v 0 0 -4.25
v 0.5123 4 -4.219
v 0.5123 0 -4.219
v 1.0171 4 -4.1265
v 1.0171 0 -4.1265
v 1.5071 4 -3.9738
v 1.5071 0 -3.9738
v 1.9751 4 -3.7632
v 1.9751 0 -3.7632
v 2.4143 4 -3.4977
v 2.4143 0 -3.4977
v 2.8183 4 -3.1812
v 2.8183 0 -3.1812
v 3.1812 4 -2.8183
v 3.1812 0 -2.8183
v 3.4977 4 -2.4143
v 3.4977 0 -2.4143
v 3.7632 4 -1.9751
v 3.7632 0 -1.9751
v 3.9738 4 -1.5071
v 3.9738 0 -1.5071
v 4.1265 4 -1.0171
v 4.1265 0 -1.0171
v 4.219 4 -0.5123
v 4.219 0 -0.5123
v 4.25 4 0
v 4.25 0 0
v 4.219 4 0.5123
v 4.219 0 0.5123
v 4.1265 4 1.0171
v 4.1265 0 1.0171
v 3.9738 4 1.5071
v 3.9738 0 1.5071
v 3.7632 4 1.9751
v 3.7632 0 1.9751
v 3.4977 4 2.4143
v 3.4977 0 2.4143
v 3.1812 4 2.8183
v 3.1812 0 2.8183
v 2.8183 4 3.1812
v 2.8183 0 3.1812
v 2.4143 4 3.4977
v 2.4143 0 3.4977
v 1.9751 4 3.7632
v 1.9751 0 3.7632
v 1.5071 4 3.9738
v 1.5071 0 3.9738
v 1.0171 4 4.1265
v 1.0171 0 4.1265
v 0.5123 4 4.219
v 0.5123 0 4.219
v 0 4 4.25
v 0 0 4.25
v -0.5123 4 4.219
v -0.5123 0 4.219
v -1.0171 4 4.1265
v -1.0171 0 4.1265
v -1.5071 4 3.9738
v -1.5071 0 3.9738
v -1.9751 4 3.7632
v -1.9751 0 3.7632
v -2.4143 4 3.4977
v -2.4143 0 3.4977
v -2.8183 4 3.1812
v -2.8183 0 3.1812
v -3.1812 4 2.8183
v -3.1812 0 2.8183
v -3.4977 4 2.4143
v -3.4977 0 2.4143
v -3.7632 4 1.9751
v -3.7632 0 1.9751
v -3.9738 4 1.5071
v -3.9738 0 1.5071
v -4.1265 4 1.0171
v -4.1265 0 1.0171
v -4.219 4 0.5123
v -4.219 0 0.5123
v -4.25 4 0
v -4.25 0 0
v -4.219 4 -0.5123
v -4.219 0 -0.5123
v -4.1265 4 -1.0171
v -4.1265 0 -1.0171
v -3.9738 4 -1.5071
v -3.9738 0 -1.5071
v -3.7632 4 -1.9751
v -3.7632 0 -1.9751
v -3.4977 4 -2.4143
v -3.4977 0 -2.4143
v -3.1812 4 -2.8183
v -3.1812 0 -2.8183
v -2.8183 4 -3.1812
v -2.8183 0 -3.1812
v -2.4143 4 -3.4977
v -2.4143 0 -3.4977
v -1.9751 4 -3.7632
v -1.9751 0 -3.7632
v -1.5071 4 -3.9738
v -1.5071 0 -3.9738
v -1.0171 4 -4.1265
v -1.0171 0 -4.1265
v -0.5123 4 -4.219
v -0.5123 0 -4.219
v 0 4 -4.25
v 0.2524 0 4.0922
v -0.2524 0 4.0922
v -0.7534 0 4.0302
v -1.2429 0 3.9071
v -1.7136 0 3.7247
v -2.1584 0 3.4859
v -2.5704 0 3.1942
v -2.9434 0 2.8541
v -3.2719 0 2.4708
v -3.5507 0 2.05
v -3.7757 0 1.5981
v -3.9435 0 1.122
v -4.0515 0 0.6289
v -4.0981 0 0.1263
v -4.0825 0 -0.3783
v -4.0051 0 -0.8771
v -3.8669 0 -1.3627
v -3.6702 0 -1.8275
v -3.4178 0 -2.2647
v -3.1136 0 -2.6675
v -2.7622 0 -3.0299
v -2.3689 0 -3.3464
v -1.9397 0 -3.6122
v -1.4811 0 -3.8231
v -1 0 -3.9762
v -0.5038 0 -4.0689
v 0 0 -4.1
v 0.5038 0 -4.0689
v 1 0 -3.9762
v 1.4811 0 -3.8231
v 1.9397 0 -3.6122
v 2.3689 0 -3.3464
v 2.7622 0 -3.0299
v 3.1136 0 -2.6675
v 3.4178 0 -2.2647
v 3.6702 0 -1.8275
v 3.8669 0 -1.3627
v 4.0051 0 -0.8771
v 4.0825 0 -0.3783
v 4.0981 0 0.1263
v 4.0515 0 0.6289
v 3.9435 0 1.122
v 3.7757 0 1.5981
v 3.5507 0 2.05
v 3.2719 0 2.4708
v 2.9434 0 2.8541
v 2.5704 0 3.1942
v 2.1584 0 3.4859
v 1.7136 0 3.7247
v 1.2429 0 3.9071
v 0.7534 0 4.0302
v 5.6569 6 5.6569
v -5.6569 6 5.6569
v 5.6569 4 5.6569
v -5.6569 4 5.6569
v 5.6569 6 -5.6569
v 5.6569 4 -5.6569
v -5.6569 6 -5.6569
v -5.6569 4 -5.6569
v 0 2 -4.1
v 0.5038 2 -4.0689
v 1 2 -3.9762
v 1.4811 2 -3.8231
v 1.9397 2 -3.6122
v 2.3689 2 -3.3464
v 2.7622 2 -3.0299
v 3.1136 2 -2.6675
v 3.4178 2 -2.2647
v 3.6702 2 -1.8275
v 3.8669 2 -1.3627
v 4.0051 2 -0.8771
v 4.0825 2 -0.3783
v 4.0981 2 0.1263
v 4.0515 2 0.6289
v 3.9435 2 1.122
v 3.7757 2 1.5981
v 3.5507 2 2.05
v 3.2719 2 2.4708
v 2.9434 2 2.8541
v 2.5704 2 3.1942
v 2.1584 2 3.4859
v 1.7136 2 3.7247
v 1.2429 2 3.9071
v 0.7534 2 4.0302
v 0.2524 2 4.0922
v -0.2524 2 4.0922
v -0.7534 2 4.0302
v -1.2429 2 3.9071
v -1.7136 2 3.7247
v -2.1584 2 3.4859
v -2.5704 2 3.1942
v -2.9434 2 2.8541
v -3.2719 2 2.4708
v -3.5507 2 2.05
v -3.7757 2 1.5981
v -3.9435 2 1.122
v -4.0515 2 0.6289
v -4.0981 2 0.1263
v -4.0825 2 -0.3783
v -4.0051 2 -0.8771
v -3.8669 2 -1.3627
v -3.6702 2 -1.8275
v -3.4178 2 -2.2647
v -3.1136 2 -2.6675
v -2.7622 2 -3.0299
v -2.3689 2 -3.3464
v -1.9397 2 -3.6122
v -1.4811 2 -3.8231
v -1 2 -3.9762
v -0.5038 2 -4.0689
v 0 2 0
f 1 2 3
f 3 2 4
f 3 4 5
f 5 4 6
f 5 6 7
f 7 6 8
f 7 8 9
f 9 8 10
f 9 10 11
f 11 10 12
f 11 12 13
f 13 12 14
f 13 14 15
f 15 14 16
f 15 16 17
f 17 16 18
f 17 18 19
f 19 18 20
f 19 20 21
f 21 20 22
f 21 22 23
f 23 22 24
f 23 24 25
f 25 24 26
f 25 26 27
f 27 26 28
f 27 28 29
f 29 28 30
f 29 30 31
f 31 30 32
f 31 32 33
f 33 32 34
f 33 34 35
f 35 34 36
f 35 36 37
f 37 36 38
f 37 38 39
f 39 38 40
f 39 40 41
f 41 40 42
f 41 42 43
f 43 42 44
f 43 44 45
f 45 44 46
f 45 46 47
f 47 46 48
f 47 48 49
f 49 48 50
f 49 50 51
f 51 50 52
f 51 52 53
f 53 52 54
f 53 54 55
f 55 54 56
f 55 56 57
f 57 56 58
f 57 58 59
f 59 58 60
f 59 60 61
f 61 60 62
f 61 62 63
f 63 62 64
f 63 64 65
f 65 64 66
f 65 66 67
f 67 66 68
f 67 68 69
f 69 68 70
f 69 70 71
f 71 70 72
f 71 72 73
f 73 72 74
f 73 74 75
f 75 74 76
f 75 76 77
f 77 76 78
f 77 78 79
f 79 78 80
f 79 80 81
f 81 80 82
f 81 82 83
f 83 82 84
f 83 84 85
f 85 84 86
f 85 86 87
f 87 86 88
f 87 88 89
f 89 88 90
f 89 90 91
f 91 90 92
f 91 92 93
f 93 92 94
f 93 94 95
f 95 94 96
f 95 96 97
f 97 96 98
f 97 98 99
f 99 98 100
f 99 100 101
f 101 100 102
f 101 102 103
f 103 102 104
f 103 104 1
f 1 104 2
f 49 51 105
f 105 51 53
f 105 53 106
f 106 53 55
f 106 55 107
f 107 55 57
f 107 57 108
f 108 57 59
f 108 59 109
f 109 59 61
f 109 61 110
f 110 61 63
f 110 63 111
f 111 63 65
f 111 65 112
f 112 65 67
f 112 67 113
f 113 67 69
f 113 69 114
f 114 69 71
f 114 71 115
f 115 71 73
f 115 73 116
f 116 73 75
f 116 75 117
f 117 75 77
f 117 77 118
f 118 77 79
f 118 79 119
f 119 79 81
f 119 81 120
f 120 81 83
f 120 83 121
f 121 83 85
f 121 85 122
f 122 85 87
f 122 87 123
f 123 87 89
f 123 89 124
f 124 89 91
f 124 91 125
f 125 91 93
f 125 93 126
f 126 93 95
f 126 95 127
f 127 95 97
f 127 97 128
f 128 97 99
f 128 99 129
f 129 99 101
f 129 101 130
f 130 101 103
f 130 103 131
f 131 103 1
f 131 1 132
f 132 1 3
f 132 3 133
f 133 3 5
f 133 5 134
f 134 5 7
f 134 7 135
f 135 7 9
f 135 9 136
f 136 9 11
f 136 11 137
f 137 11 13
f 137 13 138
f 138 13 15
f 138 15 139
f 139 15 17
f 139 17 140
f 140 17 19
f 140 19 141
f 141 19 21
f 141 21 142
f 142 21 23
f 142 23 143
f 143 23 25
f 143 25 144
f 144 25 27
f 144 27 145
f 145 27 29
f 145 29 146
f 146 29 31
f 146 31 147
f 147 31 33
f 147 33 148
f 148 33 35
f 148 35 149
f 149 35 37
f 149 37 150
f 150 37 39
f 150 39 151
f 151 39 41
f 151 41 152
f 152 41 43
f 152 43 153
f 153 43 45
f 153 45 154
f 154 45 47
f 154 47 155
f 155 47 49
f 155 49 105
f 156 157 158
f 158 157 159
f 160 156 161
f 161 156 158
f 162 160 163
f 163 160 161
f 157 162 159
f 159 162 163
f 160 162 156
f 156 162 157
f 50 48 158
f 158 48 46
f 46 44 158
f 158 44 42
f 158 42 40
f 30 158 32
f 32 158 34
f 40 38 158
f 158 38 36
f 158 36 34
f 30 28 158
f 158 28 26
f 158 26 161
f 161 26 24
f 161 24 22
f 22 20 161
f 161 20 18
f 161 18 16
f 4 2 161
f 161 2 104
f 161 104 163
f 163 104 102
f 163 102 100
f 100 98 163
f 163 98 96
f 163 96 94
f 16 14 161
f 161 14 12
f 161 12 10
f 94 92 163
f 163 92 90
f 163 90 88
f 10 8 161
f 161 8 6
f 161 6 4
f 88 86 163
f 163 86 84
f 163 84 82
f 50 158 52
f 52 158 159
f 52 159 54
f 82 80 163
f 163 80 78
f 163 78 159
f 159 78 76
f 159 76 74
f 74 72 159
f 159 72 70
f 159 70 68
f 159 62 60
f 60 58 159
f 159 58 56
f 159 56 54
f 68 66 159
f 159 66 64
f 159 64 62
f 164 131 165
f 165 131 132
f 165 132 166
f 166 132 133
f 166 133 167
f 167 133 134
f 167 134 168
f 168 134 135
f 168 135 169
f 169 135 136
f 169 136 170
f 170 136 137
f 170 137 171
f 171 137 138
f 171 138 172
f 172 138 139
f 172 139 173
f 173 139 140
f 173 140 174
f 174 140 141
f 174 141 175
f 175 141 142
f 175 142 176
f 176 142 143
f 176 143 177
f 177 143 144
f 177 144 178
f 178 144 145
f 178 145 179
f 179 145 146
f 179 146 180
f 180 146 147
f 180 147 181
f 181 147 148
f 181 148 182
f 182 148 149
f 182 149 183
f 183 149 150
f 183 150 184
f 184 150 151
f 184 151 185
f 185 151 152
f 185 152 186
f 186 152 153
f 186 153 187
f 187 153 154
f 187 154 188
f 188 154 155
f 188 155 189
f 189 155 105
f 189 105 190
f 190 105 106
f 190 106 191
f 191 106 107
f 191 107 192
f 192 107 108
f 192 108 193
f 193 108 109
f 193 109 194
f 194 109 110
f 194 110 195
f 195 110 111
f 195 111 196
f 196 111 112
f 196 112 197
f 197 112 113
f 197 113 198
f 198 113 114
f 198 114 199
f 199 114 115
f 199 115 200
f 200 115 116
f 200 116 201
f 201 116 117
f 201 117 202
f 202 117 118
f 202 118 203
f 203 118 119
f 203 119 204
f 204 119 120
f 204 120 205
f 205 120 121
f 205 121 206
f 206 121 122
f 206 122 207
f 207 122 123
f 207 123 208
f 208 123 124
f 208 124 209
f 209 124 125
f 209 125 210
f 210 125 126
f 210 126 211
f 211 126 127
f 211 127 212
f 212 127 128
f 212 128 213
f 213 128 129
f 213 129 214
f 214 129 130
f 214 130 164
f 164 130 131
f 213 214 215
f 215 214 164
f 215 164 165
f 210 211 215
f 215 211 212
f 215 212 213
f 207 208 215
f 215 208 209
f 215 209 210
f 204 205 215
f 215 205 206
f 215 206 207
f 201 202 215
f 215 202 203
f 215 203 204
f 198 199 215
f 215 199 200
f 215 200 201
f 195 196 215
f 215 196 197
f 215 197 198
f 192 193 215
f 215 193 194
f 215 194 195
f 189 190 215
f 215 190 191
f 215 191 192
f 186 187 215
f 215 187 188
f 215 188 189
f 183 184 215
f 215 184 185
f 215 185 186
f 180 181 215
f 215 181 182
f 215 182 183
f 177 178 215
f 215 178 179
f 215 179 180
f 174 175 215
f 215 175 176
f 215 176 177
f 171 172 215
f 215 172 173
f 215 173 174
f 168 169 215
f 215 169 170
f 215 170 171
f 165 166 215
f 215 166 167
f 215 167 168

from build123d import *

# Parameters (mm, degrees)
SKETCH1_R           = 4.25
BOSS_EXTRUDE1_DEPTH = 4
SKETCH2_W           = 11.313708498
SKETCH2_H           = 11.313708498
BOSS_EXTRUDE2_DEPTH = 2
SKETCH3_R           = 4.1
CUT_EXTRUDE1_DEPTH  = 2


with BuildPart() as part:
    # Sketch1 → Boss-Extrude1 (new body)
    with BuildSketch(Plane(origin=(0, 0, 0), x_dir=(1, 0, 0), z_dir=(0, 1, 0))):
        with Locations(Location((0, 0, 0), (0, 0, 270))):
            Circle(SKETCH1_R)
    extrude(amount=BOSS_EXTRUDE1_DEPTH)

    # Sketch2 → Boss-Extrude2 (add)
    with BuildSketch(Plane(origin=(0, 4, 0), x_dir=(1, 0, 0), z_dir=(0, 1, 0))):
        Rectangle(SKETCH2_W, SKETCH2_H)
    extrude(amount=BOSS_EXTRUDE2_DEPTH)

    # Sketch3 → Cut-Extrude1 (cut)
    with BuildSketch(Plane.XZ):
        with Locations(Location((0, 0, 0), (0, 0, 270))):
            Circle(SKETCH3_R)
    extrude(amount=-CUT_EXTRUDE1_DEPTH, mode=Mode.SUBTRACT)


solid = part.part
